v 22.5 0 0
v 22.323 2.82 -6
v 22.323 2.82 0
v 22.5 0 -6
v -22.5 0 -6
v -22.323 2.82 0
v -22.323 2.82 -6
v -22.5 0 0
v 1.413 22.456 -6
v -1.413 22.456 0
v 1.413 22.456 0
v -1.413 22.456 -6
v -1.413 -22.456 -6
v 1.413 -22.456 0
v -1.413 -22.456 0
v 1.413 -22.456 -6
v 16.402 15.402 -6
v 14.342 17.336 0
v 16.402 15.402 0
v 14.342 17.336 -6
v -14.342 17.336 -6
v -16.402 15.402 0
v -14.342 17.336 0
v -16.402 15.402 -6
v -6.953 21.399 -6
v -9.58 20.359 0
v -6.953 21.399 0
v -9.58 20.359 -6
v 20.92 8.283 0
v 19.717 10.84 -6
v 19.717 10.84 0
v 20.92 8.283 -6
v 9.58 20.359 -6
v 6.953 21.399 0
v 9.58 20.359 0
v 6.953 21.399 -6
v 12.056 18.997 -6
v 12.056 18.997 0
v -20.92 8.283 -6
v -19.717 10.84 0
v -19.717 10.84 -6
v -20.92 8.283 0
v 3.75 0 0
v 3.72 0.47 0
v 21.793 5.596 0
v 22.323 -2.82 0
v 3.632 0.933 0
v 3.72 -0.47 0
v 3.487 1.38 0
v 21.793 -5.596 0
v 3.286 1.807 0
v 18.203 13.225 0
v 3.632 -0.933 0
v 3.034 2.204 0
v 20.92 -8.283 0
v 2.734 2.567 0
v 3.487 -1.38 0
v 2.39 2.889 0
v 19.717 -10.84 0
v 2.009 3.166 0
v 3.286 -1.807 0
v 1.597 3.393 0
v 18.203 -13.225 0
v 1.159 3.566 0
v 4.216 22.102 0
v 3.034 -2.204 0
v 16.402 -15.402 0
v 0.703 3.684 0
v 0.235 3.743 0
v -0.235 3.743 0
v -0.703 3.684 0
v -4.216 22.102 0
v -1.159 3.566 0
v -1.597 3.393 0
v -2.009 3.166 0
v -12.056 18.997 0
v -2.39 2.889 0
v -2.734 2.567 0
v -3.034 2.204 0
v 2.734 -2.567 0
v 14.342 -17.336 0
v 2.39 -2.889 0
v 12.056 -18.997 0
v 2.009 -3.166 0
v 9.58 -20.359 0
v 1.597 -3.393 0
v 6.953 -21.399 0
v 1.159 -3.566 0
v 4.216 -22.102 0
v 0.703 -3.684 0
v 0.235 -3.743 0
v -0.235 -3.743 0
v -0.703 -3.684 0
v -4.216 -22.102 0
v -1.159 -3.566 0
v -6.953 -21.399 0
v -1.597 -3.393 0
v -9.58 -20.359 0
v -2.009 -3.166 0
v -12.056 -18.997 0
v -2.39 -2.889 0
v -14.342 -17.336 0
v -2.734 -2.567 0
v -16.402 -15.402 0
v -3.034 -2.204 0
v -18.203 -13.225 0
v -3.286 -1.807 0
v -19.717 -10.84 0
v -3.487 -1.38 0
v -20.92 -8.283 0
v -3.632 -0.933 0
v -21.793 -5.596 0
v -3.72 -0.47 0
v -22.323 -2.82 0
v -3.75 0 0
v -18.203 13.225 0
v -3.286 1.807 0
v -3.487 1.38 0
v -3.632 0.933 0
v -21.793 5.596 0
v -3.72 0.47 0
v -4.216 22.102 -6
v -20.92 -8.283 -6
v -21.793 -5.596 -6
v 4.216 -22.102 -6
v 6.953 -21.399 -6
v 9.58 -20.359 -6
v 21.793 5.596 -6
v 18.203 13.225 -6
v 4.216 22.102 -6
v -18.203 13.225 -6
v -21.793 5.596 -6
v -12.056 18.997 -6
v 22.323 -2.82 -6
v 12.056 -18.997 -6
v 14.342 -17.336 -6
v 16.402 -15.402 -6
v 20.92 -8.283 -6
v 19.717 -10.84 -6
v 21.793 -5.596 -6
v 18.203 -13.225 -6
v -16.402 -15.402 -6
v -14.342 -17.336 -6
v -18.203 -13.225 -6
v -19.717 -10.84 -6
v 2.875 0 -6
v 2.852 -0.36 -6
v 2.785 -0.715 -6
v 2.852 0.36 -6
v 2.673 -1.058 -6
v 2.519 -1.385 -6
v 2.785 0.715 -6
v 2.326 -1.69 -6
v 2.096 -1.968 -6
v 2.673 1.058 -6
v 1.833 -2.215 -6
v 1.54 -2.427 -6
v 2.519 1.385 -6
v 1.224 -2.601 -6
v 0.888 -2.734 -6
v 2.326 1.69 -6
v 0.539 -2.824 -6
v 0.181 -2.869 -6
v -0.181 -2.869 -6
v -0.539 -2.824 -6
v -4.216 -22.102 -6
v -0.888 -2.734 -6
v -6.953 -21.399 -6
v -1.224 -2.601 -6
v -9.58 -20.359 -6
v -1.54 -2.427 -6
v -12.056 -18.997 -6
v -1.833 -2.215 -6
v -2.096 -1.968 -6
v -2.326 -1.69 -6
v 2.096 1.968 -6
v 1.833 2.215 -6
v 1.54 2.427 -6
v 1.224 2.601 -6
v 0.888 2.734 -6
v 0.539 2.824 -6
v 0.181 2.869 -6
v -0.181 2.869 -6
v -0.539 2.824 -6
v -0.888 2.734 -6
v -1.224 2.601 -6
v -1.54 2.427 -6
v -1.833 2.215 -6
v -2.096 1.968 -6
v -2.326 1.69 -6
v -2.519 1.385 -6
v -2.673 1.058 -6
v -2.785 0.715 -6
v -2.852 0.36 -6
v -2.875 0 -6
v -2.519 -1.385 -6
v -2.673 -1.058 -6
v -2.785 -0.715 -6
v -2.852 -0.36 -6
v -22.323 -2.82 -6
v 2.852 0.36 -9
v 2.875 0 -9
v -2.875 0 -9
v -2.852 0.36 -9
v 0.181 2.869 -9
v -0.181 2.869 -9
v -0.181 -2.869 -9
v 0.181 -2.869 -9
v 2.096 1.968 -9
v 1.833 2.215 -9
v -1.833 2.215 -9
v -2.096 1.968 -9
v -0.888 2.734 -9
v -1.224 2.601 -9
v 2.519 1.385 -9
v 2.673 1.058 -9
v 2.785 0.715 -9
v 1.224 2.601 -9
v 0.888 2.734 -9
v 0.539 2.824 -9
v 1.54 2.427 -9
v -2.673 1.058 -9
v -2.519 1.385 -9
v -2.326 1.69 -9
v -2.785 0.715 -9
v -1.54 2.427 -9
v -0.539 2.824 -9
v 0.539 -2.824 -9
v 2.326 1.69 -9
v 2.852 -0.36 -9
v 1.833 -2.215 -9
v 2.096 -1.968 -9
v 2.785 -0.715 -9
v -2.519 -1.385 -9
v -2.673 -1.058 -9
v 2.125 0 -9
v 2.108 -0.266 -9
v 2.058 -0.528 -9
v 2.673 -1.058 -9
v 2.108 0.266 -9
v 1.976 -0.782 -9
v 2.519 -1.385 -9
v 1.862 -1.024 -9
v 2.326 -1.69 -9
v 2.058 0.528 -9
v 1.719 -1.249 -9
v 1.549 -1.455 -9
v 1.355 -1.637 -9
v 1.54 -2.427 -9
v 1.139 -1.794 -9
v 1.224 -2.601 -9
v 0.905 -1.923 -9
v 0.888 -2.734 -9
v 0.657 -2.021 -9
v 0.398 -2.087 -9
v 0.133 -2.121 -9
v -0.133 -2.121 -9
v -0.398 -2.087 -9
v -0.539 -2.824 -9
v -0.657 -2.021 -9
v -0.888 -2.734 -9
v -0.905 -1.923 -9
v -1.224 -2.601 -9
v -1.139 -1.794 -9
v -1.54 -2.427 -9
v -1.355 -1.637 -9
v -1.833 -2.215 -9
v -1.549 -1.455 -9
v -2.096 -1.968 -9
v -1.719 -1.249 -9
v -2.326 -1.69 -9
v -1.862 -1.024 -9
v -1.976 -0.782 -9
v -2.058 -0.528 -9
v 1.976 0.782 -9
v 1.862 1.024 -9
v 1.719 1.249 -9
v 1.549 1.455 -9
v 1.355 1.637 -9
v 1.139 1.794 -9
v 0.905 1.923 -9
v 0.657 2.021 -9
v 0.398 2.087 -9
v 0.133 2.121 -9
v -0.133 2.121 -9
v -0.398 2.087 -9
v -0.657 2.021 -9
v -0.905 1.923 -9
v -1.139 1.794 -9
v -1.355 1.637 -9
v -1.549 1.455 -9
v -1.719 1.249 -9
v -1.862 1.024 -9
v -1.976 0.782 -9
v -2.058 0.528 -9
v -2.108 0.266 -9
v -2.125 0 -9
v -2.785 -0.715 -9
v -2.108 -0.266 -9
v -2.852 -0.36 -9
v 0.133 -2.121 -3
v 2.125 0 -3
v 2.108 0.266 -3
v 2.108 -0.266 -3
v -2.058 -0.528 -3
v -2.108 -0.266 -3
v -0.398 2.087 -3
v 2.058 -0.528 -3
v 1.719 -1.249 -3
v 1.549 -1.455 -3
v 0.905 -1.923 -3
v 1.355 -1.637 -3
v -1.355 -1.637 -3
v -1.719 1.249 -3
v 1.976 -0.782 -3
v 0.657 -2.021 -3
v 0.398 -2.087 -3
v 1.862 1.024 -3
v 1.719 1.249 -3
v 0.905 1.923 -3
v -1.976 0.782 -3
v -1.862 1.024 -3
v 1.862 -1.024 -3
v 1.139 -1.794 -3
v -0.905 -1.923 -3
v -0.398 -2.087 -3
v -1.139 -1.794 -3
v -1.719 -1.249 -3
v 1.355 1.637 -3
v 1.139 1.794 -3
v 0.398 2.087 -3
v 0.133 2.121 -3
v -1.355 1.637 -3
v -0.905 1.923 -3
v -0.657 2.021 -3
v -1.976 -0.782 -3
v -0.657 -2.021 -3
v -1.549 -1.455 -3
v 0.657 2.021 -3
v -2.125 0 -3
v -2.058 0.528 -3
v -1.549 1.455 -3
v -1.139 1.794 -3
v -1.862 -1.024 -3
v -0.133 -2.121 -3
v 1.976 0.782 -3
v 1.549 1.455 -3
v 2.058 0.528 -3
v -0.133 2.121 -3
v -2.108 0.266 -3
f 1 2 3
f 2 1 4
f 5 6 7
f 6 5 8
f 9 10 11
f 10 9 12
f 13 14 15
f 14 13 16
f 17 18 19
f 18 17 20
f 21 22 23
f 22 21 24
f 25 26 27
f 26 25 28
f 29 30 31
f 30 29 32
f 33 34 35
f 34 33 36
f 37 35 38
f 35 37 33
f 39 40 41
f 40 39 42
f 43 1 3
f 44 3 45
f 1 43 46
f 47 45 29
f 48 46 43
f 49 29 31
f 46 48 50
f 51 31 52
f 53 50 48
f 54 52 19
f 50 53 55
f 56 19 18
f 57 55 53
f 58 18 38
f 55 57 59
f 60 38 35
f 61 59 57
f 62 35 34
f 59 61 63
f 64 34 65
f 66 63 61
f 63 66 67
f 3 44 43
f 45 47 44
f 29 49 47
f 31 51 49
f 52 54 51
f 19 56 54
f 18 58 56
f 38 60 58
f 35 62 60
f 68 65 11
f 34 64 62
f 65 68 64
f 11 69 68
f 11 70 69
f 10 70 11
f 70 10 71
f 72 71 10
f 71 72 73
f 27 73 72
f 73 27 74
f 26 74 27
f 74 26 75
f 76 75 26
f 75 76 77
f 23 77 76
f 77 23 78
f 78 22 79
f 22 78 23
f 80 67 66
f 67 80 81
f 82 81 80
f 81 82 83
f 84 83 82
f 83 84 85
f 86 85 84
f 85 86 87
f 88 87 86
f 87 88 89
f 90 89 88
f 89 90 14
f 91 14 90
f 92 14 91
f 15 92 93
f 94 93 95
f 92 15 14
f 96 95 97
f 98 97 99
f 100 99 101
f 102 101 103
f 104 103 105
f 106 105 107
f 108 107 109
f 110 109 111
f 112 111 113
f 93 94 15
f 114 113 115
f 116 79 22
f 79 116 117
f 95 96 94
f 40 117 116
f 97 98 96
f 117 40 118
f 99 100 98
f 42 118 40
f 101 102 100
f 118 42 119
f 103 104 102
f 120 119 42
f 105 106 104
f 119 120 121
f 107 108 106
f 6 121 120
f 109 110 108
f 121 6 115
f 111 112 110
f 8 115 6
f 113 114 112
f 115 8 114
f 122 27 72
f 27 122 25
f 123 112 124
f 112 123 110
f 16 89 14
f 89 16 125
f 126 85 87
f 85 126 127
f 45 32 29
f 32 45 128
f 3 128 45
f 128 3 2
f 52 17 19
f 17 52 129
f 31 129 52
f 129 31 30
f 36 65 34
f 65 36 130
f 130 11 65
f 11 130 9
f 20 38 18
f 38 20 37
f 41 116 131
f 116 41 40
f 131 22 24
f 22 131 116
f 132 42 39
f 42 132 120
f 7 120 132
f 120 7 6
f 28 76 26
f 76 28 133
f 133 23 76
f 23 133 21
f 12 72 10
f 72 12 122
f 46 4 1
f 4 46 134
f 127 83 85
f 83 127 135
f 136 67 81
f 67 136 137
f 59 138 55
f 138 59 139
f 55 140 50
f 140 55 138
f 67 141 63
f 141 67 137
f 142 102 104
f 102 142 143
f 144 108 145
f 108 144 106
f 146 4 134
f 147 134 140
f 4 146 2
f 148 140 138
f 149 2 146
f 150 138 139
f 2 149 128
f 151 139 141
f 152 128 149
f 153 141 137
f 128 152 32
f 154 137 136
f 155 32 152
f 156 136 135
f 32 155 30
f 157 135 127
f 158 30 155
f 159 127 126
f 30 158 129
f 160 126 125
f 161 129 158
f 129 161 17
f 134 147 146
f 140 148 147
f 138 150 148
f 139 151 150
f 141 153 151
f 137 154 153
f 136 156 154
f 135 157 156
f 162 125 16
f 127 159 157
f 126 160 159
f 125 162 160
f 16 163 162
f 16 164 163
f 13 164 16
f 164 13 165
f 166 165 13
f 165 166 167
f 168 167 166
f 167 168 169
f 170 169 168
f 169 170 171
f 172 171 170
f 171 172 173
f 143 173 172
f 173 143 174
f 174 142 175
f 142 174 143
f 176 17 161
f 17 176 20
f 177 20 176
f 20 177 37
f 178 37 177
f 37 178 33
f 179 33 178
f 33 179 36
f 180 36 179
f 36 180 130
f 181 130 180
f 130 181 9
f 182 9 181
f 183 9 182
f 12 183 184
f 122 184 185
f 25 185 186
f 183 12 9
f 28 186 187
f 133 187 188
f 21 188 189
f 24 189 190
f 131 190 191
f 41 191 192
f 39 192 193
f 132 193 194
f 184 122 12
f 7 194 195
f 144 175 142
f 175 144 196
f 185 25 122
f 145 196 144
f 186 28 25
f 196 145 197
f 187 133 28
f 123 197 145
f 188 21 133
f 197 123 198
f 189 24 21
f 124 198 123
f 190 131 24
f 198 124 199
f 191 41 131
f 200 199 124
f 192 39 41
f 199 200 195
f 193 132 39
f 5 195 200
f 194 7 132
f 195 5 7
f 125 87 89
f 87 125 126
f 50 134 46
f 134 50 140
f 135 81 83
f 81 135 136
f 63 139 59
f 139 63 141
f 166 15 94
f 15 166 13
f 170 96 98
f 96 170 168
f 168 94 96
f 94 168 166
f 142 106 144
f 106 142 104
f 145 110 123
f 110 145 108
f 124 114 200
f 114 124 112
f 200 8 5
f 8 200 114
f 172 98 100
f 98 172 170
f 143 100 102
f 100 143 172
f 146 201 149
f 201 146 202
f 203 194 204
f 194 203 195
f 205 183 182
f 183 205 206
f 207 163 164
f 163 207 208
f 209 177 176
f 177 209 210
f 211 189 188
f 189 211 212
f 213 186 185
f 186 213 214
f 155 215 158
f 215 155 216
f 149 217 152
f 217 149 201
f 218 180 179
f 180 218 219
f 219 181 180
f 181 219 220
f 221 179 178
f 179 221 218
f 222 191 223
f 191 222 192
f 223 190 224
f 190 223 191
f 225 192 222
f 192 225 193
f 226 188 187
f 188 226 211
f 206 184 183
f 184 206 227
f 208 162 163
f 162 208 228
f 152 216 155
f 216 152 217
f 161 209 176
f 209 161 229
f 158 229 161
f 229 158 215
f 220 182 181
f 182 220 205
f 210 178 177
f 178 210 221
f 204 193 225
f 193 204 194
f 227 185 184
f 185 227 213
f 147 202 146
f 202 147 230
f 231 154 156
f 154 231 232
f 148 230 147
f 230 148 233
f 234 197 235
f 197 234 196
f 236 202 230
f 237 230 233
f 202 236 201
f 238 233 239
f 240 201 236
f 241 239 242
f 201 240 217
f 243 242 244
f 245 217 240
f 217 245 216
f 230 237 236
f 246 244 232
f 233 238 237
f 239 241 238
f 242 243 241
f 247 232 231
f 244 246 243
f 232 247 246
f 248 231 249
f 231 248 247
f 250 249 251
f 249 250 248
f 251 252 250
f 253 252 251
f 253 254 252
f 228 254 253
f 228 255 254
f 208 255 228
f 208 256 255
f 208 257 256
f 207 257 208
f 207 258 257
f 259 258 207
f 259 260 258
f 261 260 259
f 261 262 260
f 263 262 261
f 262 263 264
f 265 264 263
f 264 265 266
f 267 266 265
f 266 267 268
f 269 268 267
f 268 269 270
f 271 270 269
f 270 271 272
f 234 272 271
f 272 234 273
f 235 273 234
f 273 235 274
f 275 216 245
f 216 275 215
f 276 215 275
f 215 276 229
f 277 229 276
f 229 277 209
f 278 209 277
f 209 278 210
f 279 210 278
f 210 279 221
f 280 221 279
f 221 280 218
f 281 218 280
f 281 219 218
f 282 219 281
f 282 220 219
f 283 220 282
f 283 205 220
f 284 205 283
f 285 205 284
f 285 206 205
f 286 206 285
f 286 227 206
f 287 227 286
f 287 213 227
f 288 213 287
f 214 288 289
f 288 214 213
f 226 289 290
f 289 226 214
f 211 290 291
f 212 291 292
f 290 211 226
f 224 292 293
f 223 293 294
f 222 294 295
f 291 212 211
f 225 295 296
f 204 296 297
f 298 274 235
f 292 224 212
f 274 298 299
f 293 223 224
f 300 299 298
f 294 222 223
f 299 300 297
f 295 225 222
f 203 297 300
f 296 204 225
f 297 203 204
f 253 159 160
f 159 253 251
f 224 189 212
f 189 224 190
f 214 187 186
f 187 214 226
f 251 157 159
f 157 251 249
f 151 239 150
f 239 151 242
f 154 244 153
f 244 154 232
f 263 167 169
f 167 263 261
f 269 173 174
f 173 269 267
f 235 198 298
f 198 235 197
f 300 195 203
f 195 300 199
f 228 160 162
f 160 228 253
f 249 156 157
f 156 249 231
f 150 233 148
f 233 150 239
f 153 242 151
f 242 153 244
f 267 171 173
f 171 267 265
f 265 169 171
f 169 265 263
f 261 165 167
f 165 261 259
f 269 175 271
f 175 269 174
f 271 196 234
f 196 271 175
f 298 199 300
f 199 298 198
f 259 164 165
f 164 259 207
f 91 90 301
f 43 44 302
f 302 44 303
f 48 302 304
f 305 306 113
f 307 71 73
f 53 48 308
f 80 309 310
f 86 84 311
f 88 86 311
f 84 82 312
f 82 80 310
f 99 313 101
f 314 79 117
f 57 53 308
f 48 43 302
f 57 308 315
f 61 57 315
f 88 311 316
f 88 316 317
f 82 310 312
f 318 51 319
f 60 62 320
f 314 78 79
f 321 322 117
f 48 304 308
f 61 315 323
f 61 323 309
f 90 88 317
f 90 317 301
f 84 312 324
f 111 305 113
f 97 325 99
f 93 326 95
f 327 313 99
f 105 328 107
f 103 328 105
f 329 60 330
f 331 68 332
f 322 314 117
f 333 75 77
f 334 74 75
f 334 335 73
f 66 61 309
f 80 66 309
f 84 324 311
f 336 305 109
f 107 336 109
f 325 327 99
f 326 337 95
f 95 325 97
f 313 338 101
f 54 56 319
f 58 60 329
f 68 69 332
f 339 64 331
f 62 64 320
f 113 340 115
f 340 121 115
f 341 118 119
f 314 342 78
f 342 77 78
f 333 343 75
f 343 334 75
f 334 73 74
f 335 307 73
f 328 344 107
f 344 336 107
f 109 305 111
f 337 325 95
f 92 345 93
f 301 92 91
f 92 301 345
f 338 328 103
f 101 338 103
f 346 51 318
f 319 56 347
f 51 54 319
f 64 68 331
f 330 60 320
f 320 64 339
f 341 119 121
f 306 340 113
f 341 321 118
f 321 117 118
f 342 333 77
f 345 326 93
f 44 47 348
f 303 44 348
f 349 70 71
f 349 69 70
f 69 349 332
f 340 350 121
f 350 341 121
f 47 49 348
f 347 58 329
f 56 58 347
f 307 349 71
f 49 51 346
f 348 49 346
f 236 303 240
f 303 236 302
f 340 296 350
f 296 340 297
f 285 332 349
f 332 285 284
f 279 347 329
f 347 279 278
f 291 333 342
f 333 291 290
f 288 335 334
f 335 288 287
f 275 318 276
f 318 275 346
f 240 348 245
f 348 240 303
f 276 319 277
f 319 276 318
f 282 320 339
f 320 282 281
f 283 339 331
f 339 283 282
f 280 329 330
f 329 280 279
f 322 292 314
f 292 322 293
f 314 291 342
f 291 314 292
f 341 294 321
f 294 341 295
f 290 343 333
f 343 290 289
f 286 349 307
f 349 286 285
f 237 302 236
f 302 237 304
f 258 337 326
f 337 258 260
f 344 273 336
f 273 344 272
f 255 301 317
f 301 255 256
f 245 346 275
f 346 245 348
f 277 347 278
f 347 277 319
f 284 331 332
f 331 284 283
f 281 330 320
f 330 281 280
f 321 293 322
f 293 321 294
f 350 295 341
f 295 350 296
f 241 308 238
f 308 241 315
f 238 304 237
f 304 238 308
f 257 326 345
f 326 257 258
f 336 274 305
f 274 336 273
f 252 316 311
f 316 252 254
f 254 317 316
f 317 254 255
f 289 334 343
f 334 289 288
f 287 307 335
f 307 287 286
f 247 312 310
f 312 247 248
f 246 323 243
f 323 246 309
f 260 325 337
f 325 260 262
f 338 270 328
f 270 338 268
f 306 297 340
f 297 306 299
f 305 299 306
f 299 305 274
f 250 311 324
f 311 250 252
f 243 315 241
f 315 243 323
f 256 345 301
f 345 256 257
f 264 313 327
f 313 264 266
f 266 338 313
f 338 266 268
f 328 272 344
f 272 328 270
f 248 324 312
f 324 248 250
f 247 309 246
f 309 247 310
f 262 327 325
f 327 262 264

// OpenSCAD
$fn = 50;


difference() {
	union() {
		translate(v = [0, 0, -6.0000000000]) {
			cylinder(h = 6, r = 22.5000000000);
		}
		translate(v = [0, 0, -9.0000000000]) {
			cylinder(h = 9, r = 2.8750000000);
		}
	}
	union() {
		translate(v = [0, 0, 0]) {
			rotate(a = [0, 0, 0]) {
				difference() {
					union() {
						translate(v = [0, 0, -9.0000000000]) {
							cylinder(h = 9, r = 2.0000000000);
						}
						translate(v = [0, 0, -3]) {
							cylinder(h = 3, r1 = 2.1250000000, r2 = 3.7500000000);
						}
						translate(v = [0, 0, -9.0000000000]) {
							cylinder(h = 9, r = 2.1250000000);
						}
						translate(v = [0, 0, -9.0000000000]) {
							cylinder(h = 9, r = 2.0000000000);
						}
					}
					union();
				}
			}
		}
	}
}
